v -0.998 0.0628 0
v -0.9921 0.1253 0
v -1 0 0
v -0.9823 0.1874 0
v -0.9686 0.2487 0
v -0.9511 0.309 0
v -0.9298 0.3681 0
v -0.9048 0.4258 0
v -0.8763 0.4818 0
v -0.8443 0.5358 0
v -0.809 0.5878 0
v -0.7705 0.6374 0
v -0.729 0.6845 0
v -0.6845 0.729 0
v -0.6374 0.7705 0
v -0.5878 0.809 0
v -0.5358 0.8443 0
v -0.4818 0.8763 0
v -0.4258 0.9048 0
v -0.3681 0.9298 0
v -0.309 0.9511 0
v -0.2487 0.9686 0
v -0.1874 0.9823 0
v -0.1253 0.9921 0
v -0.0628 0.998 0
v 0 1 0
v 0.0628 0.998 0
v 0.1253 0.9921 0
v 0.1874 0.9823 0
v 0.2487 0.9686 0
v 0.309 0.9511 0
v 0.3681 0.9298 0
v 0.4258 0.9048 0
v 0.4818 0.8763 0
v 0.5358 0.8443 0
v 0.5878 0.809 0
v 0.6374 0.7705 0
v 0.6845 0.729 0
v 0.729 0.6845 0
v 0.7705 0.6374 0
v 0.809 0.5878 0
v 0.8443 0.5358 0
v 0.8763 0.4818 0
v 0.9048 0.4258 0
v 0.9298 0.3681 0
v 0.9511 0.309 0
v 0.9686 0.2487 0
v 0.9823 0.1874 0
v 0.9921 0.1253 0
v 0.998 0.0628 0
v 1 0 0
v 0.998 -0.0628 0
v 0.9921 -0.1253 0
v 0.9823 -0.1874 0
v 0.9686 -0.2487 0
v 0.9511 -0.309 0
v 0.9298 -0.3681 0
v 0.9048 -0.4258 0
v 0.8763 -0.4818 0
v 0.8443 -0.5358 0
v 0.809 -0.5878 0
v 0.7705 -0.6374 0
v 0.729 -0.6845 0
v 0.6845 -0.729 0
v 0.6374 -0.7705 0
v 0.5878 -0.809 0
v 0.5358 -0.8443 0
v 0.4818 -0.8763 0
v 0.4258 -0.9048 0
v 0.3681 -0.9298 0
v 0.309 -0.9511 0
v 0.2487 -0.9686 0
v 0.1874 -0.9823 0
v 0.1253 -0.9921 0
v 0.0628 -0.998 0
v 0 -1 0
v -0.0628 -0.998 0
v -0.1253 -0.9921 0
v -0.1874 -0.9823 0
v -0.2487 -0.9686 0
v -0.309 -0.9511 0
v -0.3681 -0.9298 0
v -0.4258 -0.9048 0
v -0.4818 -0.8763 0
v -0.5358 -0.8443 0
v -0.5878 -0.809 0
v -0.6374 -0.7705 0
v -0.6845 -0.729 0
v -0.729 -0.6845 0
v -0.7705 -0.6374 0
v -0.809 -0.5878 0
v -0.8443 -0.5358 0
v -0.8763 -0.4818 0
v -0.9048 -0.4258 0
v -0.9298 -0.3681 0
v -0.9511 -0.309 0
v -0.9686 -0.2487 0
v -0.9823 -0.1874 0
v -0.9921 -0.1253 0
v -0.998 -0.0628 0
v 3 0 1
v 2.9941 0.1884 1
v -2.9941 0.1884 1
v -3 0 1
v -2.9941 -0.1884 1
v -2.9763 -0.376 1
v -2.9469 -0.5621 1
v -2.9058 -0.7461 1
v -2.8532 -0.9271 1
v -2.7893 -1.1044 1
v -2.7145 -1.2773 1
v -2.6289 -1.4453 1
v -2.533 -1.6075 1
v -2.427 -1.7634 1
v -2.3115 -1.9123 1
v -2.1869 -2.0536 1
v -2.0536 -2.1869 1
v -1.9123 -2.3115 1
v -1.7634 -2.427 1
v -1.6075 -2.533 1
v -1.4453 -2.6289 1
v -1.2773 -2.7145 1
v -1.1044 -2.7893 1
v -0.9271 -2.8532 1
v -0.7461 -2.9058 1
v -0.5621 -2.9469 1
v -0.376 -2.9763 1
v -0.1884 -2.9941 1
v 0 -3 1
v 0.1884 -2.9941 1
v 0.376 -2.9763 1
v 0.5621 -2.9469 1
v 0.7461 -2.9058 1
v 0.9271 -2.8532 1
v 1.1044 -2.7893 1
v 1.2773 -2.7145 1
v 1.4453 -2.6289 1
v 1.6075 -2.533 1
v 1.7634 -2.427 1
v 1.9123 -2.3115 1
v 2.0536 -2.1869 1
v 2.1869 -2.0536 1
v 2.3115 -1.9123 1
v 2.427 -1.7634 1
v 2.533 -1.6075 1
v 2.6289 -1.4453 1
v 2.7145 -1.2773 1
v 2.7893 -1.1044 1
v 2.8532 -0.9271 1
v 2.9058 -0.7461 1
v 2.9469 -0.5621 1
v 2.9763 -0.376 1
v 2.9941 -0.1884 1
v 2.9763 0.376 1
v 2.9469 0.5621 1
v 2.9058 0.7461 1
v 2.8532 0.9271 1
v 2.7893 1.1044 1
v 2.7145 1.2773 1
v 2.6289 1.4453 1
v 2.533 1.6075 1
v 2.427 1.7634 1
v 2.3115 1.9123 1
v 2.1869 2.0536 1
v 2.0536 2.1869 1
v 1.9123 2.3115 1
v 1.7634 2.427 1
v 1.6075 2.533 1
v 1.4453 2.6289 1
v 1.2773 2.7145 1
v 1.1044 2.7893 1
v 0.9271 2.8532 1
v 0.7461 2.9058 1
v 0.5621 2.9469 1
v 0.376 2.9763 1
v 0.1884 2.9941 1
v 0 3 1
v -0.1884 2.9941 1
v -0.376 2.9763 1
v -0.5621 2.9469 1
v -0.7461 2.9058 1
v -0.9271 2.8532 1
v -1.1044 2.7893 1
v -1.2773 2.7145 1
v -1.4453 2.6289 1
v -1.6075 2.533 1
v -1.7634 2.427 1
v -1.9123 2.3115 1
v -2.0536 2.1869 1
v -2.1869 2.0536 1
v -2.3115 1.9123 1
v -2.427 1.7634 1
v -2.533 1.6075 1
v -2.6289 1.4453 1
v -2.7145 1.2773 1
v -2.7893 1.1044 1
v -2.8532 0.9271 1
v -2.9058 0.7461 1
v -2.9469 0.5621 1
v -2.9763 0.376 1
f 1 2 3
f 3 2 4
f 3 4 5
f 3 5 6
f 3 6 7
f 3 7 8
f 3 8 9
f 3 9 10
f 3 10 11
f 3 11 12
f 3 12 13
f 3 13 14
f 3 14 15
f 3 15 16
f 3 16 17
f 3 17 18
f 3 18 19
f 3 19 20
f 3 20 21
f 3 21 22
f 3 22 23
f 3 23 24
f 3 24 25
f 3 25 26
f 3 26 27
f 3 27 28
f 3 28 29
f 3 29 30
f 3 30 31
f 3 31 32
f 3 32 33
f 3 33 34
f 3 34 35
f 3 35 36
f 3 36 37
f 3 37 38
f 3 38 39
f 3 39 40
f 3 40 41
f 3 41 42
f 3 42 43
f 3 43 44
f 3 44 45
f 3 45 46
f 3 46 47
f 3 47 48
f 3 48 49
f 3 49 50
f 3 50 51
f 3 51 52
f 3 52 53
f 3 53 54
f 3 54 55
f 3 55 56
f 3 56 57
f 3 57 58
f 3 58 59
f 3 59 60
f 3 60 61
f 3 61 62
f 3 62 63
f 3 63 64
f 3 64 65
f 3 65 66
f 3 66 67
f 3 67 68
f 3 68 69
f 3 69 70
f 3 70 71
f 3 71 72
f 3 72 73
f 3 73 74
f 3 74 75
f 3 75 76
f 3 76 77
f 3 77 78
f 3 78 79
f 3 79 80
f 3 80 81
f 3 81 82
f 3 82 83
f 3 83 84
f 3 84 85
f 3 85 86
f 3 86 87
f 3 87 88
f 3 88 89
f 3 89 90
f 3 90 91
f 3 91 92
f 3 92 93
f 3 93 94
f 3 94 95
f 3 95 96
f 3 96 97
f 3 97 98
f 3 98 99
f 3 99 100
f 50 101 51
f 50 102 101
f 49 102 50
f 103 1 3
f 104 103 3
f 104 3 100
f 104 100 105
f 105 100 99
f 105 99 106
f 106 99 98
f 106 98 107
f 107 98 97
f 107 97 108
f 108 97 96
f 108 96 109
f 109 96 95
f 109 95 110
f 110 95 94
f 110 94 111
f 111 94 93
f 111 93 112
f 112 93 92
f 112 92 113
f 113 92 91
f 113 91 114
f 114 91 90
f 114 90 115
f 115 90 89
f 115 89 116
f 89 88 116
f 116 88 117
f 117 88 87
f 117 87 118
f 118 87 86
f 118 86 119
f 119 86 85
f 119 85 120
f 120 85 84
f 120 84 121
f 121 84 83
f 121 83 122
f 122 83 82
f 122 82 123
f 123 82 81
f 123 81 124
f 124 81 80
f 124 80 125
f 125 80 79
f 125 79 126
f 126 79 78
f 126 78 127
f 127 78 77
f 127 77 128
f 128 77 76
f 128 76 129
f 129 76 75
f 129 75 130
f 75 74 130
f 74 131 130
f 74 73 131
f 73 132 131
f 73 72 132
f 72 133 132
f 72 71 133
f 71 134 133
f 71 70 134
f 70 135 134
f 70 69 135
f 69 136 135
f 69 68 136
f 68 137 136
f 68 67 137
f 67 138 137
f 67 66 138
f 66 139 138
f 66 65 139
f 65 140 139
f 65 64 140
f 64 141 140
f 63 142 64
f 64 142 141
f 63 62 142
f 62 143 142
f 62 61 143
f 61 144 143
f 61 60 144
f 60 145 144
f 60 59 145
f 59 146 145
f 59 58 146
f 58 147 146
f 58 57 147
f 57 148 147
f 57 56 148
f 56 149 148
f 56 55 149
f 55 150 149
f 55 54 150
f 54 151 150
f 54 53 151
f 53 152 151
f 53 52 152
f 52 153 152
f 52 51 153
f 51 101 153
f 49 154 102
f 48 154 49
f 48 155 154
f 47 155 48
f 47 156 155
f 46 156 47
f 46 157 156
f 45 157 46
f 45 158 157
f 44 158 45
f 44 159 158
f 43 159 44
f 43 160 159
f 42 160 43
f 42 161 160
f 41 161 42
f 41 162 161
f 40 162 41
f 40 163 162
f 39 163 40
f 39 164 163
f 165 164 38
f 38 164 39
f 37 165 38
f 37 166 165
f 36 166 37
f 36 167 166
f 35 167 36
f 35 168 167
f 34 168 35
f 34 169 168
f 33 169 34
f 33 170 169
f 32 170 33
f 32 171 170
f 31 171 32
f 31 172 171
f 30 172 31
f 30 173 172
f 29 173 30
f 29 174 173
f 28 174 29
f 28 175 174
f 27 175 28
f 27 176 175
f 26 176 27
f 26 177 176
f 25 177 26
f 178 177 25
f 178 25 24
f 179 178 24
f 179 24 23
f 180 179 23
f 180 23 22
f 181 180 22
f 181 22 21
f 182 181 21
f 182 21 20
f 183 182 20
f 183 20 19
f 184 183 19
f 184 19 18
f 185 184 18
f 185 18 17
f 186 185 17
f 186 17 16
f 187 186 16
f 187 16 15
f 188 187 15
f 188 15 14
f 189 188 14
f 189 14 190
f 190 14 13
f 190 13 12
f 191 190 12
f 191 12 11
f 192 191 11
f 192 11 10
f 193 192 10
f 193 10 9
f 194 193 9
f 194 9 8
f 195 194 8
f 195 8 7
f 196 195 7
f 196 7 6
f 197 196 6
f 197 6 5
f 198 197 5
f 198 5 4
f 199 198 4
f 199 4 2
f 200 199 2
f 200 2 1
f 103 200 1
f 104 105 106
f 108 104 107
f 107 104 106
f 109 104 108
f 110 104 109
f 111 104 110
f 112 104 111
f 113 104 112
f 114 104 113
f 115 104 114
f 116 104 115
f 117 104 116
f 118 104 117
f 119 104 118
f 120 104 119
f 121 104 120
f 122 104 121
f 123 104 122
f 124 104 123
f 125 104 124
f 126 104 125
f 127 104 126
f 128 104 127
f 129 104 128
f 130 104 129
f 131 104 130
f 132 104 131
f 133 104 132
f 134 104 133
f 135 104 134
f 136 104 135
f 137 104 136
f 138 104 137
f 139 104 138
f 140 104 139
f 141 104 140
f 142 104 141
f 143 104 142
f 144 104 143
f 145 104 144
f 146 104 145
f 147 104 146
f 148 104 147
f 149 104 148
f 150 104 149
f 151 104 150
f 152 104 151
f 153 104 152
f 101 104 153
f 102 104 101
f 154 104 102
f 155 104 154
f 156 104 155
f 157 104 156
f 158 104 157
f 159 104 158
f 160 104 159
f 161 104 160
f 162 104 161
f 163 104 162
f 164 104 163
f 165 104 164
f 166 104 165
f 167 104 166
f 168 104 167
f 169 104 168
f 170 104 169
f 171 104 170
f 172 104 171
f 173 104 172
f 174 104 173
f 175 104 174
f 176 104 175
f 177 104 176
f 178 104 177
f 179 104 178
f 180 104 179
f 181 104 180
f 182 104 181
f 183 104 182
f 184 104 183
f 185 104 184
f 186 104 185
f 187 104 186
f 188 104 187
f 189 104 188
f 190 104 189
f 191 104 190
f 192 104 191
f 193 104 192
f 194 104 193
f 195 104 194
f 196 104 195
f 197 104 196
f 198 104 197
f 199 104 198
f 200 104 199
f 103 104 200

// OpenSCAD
/*
 * OpenSCAD Workshop Examples
 * Copyright (c) 2013 Anar Software LLC. < http://anars.com >
 *
 * This program is free software: you can redistribute it and/or modify it under
 * the terms of the GNU General Public License as published by the Free Software
 * Foundation, either version 3 of the License, or (at your option) any later
 * version.
 *
 * This program is distributed in the hope that it will be useful, but WITHOUT
 * ANY WARRANTY; without even the implied warranty of MERCHANTABILITY or FITNESS
 * FOR A PARTICULAR PURPOSE. See the GNU General Public License for more details.
 *
 * You should have received a copy of the GNU General Public License along with
 * this program. If not, see < http://www.gnu.org/licenses/ >
 *
 */
/*

Creates a cone with top end radius is 3 unit radius, bottom end radius 1 unit and 1 unit height.

Parameters :

	cylinder(r2 = x);

*/

$fn = 100;

cylinder(r2 = 3);
